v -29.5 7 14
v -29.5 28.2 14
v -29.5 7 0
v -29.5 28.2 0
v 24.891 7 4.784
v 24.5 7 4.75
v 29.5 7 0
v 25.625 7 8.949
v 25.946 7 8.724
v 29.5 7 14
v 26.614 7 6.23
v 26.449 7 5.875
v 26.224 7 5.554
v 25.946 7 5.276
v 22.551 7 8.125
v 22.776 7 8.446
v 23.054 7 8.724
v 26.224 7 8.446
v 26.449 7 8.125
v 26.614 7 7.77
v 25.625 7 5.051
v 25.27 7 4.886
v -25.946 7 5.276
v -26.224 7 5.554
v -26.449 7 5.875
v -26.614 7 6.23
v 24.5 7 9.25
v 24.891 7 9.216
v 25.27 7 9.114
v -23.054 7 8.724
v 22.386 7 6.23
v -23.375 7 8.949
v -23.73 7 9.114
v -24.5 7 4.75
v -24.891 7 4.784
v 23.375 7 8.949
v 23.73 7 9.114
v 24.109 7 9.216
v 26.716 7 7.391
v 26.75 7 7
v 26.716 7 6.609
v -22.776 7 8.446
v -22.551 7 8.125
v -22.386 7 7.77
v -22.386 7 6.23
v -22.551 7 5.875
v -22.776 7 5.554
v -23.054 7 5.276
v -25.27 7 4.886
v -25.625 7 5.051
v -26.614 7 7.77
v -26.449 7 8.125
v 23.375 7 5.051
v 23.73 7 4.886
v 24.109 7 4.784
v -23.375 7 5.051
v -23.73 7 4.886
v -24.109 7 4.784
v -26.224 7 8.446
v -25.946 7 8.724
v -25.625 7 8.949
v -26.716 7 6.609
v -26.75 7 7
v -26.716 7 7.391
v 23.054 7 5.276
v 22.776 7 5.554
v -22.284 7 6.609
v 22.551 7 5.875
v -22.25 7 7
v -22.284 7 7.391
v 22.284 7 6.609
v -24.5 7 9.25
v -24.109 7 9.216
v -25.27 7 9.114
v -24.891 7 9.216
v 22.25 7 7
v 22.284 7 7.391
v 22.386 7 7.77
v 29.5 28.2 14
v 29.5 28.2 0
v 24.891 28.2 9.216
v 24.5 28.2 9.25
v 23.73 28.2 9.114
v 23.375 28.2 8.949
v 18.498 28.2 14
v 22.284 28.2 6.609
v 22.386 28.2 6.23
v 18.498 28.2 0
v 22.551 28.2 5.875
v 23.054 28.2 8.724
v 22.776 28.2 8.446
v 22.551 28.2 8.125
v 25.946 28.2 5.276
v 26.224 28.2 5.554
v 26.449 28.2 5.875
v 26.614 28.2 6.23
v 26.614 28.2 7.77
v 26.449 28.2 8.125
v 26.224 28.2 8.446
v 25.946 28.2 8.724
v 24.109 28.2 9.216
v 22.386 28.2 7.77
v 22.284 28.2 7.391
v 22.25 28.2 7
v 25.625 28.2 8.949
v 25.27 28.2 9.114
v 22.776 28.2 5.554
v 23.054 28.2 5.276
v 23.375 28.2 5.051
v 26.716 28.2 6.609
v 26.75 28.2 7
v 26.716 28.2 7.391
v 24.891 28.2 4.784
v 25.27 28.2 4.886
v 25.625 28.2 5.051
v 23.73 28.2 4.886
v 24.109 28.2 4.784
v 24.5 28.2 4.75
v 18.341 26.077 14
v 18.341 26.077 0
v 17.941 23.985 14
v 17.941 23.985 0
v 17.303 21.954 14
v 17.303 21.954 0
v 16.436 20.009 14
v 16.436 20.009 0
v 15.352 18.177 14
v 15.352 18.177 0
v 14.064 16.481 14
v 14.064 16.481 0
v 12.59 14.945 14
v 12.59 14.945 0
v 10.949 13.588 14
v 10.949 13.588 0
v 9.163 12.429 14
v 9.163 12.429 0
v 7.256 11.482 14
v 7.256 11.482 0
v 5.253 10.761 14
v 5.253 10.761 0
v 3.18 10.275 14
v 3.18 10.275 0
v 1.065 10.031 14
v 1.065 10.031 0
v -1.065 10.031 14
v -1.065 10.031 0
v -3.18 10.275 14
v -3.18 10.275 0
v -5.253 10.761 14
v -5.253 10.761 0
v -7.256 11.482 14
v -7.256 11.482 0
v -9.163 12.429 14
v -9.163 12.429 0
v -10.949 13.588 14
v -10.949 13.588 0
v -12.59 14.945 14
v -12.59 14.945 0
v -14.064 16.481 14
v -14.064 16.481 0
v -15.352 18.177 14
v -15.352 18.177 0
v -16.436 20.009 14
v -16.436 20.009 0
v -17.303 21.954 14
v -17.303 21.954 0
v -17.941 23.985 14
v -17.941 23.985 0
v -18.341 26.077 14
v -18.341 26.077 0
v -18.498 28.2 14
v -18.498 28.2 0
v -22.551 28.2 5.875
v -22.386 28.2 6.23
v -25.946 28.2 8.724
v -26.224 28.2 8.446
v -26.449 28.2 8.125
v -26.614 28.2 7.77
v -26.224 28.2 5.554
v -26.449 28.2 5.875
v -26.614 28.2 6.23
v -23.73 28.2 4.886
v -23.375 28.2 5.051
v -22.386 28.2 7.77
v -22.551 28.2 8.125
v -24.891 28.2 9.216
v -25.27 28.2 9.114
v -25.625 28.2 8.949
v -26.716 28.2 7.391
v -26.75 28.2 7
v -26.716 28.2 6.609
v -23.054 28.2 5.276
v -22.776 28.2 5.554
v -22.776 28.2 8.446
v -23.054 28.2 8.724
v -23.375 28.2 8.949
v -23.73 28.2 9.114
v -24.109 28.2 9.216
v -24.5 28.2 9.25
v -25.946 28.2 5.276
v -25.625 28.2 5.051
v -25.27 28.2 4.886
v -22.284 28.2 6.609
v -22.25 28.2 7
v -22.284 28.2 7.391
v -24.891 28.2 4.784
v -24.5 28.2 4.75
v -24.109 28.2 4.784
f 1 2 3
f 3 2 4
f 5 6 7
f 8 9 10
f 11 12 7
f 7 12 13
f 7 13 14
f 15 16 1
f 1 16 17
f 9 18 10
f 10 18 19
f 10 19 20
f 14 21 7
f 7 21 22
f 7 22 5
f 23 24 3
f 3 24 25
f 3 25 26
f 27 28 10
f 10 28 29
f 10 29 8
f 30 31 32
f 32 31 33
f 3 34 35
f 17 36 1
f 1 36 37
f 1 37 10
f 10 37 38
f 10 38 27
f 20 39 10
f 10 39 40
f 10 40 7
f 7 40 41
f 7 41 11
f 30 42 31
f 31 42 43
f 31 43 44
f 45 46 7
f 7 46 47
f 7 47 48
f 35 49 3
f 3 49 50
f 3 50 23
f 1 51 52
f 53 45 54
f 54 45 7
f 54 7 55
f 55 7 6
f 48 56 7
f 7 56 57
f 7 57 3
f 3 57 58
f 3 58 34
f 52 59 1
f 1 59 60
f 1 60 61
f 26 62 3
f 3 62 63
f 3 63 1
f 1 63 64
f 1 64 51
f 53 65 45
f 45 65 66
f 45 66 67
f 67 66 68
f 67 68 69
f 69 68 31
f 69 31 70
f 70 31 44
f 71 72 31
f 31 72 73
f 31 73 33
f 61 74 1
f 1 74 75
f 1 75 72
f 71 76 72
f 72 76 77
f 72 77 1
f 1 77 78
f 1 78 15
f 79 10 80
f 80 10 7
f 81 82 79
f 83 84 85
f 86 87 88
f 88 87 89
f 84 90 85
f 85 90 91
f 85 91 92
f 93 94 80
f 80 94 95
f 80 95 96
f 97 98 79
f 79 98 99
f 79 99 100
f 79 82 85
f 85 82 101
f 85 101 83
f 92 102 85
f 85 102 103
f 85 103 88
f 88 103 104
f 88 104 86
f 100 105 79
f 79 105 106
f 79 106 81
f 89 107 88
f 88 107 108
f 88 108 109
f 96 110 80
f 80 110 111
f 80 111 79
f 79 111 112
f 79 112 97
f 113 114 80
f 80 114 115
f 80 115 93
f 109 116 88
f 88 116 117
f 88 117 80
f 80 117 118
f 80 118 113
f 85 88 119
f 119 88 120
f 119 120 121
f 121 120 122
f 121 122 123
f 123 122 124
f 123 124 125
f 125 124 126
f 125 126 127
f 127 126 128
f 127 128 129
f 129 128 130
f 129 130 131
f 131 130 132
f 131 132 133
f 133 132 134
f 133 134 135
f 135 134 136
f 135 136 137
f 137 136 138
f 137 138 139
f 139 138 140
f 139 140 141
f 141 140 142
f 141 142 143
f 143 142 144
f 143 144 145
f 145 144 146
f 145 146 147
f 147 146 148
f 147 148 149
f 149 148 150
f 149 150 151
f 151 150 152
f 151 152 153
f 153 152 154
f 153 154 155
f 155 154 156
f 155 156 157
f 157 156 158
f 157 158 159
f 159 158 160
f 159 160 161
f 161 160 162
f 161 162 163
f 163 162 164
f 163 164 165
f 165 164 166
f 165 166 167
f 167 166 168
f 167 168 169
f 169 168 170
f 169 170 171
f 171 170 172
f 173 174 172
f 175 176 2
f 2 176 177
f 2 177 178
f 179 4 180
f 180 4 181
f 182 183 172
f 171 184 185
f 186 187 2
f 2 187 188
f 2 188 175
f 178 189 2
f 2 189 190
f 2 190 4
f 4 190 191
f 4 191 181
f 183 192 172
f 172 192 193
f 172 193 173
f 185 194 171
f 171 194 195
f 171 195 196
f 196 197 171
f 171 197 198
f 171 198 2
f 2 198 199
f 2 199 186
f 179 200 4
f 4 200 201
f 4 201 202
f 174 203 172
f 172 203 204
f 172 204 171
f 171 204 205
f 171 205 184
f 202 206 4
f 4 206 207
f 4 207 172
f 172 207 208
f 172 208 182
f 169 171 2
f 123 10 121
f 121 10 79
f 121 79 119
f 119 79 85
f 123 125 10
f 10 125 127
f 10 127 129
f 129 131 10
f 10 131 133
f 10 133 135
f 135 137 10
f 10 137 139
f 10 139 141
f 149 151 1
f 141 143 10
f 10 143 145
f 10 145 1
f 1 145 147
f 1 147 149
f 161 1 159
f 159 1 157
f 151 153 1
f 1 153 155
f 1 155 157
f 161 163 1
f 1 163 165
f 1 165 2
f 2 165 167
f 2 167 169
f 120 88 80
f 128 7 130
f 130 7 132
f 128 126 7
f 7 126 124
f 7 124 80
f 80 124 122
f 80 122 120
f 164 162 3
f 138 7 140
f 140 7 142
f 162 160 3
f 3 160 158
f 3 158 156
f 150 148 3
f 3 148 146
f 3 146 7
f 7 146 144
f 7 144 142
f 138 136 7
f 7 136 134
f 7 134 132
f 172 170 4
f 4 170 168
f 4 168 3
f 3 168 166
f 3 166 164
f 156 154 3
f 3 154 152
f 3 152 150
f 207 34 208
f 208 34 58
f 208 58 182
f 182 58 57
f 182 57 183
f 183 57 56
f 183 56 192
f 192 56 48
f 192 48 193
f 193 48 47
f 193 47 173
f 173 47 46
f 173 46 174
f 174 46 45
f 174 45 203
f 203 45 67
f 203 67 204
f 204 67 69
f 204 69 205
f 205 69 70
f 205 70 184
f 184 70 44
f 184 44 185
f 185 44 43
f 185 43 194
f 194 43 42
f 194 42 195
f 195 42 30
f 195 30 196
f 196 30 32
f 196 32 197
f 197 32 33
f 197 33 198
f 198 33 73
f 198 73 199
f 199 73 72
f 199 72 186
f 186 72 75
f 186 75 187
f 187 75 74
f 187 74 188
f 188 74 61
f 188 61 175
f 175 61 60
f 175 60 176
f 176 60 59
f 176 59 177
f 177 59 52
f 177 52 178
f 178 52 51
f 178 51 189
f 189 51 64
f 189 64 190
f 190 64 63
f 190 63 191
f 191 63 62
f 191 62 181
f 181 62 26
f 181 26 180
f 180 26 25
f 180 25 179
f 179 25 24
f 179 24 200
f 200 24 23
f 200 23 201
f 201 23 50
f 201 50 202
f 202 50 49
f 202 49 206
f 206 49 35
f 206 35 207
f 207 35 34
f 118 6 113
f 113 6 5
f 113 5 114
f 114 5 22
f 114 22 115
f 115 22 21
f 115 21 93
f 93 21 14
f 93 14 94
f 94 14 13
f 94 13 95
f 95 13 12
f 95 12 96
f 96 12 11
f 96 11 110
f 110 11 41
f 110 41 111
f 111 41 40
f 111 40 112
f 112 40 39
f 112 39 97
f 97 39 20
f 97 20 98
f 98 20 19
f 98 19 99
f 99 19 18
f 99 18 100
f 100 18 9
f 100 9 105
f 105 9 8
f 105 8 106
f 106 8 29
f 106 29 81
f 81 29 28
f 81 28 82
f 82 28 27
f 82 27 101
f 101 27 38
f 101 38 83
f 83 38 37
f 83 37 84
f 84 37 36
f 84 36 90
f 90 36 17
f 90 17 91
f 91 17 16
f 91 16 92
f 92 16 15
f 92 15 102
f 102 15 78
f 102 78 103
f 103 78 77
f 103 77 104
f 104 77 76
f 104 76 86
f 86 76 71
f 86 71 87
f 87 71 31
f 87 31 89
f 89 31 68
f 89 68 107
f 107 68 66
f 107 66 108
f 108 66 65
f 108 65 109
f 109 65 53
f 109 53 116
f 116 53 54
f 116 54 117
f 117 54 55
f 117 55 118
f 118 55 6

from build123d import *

# Parameters (mm, degrees)
SPLIT_SADDLE_WITH_37_0_MM_PROTOTYPE_BORE_DEPTH = 14
M4_THROUGH_HOLES_DEPTH                         = 44.144988121
M4_THROUGH_HOLES_DEPTH_BACK                    = 44.144988121
SKETCH2_R                                      = 2.25


with BuildPart() as part:
    # Split saddle with 37.0 mm prototype  2 → Split saddle with 37.0 mm prototype bore (new body)
    with BuildSketch(Plane.XY):
        with BuildLine():
            Line((-29.5, 7), (29.5, 7))
            Line((29.5, 7), (29.5, 28.2))
            Line((29.5, 28.2), (18.497567408, 28.2))
            ThreePointArc((18.497567408, 28.2), (0, 10), (-18.497567408, 28.2))
            Line((-18.497567408, 28.2), (-29.5, 28.2))
            Line((-29.5, 28.2), (-29.5, 7))
        make_face()
    extrude(amount=SPLIT_SADDLE_WITH_37_0_MM_PROTOTYPE_BORE_DEPTH)

    # Sketch2 → M4 through holes (cut, two sides: drawn at the far end of the back side and taken through both)
    with BuildSketch(Plane(origin=(0, 0, 0), x_dir=(1, 0, 0), z_dir=(0, 1, 0)).offset(-M4_THROUGH_HOLES_DEPTH_BACK)):
        with Locations(Location((-24.5, -7, 0), (0, 0, 270))):
            Circle(SKETCH2_R)
        with Locations(Location((24.5, -7, 0), (0, 0, 270))):
            Circle(SKETCH2_R)
    extrude(amount=M4_THROUGH_HOLES_DEPTH + M4_THROUGH_HOLES_DEPTH_BACK, mode=Mode.SUBTRACT)


solid = part.part
